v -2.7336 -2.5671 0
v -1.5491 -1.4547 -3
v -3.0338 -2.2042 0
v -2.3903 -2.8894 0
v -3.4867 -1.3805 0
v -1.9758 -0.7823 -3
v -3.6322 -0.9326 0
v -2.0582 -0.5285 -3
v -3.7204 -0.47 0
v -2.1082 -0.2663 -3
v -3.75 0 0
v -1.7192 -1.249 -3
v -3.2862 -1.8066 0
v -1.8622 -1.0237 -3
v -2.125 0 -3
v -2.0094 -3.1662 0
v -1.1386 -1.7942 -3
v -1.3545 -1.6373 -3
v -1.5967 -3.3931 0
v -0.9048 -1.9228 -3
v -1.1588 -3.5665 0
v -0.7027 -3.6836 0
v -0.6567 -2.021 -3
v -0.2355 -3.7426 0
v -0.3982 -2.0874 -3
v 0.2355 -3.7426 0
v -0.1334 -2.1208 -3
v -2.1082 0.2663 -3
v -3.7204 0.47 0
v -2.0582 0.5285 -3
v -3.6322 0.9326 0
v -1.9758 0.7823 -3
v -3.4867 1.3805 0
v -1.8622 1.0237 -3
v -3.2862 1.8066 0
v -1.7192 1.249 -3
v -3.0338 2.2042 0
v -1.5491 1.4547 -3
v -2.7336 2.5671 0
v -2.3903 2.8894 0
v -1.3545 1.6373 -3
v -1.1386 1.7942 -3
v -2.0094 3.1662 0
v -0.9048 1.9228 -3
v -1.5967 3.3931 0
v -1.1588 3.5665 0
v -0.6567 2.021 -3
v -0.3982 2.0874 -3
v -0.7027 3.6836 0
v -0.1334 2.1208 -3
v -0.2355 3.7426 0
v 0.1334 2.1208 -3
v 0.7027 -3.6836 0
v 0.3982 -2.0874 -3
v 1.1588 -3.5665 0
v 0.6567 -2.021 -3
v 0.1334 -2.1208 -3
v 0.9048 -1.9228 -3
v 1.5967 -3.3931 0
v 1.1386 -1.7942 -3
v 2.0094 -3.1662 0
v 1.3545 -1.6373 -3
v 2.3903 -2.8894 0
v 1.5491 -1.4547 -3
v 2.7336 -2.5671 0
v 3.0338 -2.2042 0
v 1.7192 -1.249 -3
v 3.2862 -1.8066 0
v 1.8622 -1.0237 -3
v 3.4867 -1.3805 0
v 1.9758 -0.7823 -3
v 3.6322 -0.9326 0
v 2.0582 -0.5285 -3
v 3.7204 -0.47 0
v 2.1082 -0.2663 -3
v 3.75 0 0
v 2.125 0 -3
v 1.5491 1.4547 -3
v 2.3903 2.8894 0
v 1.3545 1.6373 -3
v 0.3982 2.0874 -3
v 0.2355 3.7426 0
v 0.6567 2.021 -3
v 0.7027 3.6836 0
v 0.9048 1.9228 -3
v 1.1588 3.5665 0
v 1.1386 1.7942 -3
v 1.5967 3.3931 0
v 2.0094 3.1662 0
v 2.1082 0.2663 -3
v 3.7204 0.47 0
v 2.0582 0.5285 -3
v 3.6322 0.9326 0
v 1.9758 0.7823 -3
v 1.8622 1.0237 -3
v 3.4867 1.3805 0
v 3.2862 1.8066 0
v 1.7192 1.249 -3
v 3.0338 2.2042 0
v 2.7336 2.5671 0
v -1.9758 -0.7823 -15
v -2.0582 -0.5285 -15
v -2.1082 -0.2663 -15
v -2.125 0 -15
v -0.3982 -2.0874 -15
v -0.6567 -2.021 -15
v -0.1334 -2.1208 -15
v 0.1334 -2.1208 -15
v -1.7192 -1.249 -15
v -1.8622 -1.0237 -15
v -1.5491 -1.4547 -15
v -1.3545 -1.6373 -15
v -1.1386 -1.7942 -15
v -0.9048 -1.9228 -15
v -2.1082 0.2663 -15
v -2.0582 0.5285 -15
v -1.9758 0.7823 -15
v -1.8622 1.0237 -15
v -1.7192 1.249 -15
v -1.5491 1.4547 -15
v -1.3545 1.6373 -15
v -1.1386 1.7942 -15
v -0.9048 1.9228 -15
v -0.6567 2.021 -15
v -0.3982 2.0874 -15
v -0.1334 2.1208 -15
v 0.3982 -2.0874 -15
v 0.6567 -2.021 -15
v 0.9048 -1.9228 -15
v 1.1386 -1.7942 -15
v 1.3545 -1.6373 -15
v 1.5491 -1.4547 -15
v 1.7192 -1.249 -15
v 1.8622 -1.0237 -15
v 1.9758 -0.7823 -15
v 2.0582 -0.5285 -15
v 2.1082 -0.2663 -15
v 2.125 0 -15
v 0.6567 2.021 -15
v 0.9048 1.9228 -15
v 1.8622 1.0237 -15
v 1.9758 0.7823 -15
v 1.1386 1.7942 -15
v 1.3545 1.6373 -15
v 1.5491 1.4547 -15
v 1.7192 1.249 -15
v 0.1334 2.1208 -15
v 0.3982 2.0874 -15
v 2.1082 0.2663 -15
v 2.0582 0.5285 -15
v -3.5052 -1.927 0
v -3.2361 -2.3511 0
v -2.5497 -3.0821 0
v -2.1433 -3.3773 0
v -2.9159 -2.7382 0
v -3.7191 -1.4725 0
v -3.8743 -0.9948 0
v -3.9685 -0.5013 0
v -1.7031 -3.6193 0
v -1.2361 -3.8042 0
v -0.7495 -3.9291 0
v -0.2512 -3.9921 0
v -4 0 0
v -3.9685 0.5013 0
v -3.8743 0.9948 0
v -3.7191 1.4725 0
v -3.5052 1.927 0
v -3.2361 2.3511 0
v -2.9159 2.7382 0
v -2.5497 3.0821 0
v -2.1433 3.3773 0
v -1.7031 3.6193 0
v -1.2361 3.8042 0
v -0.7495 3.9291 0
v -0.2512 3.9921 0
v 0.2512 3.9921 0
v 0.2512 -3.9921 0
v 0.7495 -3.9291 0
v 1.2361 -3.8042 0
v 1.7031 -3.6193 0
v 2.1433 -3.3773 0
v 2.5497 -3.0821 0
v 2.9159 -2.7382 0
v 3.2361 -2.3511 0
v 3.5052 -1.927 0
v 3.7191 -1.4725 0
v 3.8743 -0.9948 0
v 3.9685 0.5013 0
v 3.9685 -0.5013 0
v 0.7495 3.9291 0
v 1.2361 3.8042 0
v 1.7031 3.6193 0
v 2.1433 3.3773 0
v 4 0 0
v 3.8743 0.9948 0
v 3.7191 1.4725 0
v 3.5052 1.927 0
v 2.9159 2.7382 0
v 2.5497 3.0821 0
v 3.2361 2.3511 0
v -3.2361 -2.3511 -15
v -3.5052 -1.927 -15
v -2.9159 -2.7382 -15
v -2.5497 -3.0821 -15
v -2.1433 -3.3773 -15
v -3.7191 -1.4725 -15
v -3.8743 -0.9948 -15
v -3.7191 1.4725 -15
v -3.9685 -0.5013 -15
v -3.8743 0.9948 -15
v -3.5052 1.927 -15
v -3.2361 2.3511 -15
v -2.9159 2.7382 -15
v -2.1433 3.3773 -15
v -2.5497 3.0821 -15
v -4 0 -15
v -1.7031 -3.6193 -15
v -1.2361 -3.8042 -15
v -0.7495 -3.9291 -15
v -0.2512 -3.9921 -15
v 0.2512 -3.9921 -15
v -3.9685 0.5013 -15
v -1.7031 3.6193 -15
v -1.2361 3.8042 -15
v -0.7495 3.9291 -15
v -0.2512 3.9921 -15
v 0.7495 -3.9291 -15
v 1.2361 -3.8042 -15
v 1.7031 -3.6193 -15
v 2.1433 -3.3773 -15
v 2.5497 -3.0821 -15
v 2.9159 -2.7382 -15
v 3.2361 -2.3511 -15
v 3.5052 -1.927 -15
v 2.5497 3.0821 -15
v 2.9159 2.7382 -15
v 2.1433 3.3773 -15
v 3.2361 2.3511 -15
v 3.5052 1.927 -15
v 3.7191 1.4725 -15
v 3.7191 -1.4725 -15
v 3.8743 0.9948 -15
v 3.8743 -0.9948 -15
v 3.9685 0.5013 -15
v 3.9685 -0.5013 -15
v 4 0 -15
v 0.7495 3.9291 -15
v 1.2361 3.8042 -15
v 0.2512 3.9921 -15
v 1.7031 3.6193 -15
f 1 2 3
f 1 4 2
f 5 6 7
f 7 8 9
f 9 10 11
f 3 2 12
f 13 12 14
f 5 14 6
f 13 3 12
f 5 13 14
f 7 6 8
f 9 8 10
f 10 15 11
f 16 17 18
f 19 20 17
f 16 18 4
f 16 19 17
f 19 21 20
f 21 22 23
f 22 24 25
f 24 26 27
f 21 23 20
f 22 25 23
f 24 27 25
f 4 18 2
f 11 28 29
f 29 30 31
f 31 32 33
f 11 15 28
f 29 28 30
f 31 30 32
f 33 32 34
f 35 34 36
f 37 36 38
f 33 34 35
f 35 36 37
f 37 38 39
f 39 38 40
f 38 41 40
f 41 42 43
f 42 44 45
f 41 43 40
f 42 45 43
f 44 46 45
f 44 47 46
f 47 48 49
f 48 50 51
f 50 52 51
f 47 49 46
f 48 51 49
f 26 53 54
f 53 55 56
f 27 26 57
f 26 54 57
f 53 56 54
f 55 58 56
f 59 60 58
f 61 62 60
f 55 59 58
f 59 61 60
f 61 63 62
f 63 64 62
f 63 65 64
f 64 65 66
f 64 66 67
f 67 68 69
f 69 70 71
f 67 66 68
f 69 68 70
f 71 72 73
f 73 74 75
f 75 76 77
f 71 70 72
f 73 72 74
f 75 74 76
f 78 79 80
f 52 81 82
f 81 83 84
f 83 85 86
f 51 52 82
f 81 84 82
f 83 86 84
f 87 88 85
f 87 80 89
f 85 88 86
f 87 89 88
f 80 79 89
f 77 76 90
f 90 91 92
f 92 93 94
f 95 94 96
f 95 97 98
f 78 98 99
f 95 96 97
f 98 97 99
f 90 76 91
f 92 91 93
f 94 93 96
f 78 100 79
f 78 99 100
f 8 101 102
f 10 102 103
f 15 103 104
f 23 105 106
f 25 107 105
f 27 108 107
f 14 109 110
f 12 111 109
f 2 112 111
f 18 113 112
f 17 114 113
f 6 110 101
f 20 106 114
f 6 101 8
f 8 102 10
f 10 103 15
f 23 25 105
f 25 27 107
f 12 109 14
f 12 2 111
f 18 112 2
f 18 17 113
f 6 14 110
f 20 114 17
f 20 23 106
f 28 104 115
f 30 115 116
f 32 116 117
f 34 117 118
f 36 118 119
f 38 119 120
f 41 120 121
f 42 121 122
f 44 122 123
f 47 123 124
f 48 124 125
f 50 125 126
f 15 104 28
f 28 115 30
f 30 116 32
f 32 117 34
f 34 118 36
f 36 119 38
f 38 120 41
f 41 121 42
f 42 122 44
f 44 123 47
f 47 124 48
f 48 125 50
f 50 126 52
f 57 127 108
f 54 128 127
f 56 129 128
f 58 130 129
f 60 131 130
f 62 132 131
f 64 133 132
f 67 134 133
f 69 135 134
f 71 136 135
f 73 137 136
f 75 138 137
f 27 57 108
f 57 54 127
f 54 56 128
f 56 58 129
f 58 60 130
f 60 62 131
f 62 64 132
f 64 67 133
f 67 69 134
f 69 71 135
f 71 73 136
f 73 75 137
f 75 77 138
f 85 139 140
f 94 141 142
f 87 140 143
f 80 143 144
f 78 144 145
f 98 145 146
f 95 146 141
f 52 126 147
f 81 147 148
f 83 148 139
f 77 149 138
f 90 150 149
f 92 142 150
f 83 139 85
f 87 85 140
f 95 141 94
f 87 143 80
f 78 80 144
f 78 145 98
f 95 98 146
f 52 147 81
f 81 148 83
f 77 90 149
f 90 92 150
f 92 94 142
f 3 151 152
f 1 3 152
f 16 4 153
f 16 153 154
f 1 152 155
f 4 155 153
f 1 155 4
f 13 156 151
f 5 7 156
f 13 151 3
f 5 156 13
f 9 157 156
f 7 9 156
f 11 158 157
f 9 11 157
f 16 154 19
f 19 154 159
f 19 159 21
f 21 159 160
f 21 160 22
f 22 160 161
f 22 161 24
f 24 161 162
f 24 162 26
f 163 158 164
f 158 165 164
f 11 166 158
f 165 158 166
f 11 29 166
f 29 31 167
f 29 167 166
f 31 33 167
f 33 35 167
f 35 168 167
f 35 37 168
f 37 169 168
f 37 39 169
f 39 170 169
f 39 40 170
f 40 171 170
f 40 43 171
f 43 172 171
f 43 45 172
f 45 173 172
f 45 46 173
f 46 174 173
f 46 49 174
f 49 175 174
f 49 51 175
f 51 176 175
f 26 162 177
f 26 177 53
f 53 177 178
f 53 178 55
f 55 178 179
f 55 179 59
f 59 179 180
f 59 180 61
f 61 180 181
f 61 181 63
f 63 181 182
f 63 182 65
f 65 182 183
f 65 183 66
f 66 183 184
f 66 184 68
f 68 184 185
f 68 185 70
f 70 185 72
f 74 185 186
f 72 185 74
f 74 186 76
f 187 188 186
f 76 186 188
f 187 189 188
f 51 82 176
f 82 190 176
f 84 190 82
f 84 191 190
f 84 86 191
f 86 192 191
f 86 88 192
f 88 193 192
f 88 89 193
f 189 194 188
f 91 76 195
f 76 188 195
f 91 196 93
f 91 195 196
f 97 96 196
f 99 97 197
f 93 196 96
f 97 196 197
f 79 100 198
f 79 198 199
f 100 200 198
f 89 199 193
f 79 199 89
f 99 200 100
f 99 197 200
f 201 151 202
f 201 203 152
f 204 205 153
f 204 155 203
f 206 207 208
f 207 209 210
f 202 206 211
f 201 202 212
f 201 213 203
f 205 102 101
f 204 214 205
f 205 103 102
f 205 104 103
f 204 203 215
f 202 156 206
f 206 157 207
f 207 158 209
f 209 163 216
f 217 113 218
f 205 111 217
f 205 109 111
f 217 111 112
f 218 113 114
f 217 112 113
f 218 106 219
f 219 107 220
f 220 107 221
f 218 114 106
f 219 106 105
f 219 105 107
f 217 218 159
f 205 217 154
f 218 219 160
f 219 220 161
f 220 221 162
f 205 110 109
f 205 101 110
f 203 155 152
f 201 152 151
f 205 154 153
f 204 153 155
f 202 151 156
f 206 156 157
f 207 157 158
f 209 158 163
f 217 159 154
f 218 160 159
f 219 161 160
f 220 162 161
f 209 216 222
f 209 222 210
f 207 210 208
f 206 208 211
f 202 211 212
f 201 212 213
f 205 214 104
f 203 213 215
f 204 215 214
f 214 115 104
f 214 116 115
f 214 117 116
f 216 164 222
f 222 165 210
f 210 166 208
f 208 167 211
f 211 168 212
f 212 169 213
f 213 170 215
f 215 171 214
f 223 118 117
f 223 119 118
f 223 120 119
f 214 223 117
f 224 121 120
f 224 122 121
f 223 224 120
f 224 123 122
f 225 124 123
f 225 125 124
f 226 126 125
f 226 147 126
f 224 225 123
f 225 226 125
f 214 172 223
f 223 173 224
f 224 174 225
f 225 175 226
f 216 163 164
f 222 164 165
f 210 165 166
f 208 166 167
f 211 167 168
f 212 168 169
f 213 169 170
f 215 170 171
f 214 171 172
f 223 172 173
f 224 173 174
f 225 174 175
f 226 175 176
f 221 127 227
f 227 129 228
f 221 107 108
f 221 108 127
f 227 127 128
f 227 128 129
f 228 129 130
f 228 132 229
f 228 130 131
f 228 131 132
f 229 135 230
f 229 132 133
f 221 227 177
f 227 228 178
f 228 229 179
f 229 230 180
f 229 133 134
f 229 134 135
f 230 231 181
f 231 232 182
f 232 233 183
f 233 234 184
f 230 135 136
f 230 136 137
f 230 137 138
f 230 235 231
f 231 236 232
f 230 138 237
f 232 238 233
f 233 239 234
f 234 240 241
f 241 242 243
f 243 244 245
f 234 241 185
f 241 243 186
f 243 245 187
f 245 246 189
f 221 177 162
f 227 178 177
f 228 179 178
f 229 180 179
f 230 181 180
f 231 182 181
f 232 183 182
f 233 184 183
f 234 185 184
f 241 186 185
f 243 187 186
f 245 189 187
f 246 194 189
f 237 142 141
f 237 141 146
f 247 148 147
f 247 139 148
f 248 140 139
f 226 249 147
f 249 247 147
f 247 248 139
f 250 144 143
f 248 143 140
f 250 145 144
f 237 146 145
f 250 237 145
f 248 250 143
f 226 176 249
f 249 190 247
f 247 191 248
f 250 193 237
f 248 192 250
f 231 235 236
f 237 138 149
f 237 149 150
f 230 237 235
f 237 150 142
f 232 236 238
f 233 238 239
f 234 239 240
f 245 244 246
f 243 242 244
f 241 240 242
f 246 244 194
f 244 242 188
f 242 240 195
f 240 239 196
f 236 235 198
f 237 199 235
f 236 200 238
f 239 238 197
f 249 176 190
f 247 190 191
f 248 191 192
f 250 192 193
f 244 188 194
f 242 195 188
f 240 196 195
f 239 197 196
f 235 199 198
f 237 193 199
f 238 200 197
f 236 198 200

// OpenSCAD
$fn = 50;

difference() {
	union() {
		translate(v = [0, 0, -15.0]) {
			cylinder(h = 18, r = 4.0);
		}
	}
	union() {
		translate(v = [0, 0, 0]) {
			rotate(a = [0, 0, 0]) {
				difference() {
					union() {
						translate(v = [0, 0, -18.0]) {
							cylinder(h = 18, r = 2.0);
						}
						translate(v = [0, 0, -3]) {
							cylinder(h = 3, r1 = 2.125, r2 = 3.75);
						}
						translate(v = [0, 0, -18.0]) {
							cylinder(h = 18, r = 2.125);
						}
						translate(v = [0, 0, -18.0]) {
							cylinder(h = 18, r = 2.0);
						}
					}
					union();
				}
			}
		}
		#cylinder(h = 3, r = 5.0);
	}
}
